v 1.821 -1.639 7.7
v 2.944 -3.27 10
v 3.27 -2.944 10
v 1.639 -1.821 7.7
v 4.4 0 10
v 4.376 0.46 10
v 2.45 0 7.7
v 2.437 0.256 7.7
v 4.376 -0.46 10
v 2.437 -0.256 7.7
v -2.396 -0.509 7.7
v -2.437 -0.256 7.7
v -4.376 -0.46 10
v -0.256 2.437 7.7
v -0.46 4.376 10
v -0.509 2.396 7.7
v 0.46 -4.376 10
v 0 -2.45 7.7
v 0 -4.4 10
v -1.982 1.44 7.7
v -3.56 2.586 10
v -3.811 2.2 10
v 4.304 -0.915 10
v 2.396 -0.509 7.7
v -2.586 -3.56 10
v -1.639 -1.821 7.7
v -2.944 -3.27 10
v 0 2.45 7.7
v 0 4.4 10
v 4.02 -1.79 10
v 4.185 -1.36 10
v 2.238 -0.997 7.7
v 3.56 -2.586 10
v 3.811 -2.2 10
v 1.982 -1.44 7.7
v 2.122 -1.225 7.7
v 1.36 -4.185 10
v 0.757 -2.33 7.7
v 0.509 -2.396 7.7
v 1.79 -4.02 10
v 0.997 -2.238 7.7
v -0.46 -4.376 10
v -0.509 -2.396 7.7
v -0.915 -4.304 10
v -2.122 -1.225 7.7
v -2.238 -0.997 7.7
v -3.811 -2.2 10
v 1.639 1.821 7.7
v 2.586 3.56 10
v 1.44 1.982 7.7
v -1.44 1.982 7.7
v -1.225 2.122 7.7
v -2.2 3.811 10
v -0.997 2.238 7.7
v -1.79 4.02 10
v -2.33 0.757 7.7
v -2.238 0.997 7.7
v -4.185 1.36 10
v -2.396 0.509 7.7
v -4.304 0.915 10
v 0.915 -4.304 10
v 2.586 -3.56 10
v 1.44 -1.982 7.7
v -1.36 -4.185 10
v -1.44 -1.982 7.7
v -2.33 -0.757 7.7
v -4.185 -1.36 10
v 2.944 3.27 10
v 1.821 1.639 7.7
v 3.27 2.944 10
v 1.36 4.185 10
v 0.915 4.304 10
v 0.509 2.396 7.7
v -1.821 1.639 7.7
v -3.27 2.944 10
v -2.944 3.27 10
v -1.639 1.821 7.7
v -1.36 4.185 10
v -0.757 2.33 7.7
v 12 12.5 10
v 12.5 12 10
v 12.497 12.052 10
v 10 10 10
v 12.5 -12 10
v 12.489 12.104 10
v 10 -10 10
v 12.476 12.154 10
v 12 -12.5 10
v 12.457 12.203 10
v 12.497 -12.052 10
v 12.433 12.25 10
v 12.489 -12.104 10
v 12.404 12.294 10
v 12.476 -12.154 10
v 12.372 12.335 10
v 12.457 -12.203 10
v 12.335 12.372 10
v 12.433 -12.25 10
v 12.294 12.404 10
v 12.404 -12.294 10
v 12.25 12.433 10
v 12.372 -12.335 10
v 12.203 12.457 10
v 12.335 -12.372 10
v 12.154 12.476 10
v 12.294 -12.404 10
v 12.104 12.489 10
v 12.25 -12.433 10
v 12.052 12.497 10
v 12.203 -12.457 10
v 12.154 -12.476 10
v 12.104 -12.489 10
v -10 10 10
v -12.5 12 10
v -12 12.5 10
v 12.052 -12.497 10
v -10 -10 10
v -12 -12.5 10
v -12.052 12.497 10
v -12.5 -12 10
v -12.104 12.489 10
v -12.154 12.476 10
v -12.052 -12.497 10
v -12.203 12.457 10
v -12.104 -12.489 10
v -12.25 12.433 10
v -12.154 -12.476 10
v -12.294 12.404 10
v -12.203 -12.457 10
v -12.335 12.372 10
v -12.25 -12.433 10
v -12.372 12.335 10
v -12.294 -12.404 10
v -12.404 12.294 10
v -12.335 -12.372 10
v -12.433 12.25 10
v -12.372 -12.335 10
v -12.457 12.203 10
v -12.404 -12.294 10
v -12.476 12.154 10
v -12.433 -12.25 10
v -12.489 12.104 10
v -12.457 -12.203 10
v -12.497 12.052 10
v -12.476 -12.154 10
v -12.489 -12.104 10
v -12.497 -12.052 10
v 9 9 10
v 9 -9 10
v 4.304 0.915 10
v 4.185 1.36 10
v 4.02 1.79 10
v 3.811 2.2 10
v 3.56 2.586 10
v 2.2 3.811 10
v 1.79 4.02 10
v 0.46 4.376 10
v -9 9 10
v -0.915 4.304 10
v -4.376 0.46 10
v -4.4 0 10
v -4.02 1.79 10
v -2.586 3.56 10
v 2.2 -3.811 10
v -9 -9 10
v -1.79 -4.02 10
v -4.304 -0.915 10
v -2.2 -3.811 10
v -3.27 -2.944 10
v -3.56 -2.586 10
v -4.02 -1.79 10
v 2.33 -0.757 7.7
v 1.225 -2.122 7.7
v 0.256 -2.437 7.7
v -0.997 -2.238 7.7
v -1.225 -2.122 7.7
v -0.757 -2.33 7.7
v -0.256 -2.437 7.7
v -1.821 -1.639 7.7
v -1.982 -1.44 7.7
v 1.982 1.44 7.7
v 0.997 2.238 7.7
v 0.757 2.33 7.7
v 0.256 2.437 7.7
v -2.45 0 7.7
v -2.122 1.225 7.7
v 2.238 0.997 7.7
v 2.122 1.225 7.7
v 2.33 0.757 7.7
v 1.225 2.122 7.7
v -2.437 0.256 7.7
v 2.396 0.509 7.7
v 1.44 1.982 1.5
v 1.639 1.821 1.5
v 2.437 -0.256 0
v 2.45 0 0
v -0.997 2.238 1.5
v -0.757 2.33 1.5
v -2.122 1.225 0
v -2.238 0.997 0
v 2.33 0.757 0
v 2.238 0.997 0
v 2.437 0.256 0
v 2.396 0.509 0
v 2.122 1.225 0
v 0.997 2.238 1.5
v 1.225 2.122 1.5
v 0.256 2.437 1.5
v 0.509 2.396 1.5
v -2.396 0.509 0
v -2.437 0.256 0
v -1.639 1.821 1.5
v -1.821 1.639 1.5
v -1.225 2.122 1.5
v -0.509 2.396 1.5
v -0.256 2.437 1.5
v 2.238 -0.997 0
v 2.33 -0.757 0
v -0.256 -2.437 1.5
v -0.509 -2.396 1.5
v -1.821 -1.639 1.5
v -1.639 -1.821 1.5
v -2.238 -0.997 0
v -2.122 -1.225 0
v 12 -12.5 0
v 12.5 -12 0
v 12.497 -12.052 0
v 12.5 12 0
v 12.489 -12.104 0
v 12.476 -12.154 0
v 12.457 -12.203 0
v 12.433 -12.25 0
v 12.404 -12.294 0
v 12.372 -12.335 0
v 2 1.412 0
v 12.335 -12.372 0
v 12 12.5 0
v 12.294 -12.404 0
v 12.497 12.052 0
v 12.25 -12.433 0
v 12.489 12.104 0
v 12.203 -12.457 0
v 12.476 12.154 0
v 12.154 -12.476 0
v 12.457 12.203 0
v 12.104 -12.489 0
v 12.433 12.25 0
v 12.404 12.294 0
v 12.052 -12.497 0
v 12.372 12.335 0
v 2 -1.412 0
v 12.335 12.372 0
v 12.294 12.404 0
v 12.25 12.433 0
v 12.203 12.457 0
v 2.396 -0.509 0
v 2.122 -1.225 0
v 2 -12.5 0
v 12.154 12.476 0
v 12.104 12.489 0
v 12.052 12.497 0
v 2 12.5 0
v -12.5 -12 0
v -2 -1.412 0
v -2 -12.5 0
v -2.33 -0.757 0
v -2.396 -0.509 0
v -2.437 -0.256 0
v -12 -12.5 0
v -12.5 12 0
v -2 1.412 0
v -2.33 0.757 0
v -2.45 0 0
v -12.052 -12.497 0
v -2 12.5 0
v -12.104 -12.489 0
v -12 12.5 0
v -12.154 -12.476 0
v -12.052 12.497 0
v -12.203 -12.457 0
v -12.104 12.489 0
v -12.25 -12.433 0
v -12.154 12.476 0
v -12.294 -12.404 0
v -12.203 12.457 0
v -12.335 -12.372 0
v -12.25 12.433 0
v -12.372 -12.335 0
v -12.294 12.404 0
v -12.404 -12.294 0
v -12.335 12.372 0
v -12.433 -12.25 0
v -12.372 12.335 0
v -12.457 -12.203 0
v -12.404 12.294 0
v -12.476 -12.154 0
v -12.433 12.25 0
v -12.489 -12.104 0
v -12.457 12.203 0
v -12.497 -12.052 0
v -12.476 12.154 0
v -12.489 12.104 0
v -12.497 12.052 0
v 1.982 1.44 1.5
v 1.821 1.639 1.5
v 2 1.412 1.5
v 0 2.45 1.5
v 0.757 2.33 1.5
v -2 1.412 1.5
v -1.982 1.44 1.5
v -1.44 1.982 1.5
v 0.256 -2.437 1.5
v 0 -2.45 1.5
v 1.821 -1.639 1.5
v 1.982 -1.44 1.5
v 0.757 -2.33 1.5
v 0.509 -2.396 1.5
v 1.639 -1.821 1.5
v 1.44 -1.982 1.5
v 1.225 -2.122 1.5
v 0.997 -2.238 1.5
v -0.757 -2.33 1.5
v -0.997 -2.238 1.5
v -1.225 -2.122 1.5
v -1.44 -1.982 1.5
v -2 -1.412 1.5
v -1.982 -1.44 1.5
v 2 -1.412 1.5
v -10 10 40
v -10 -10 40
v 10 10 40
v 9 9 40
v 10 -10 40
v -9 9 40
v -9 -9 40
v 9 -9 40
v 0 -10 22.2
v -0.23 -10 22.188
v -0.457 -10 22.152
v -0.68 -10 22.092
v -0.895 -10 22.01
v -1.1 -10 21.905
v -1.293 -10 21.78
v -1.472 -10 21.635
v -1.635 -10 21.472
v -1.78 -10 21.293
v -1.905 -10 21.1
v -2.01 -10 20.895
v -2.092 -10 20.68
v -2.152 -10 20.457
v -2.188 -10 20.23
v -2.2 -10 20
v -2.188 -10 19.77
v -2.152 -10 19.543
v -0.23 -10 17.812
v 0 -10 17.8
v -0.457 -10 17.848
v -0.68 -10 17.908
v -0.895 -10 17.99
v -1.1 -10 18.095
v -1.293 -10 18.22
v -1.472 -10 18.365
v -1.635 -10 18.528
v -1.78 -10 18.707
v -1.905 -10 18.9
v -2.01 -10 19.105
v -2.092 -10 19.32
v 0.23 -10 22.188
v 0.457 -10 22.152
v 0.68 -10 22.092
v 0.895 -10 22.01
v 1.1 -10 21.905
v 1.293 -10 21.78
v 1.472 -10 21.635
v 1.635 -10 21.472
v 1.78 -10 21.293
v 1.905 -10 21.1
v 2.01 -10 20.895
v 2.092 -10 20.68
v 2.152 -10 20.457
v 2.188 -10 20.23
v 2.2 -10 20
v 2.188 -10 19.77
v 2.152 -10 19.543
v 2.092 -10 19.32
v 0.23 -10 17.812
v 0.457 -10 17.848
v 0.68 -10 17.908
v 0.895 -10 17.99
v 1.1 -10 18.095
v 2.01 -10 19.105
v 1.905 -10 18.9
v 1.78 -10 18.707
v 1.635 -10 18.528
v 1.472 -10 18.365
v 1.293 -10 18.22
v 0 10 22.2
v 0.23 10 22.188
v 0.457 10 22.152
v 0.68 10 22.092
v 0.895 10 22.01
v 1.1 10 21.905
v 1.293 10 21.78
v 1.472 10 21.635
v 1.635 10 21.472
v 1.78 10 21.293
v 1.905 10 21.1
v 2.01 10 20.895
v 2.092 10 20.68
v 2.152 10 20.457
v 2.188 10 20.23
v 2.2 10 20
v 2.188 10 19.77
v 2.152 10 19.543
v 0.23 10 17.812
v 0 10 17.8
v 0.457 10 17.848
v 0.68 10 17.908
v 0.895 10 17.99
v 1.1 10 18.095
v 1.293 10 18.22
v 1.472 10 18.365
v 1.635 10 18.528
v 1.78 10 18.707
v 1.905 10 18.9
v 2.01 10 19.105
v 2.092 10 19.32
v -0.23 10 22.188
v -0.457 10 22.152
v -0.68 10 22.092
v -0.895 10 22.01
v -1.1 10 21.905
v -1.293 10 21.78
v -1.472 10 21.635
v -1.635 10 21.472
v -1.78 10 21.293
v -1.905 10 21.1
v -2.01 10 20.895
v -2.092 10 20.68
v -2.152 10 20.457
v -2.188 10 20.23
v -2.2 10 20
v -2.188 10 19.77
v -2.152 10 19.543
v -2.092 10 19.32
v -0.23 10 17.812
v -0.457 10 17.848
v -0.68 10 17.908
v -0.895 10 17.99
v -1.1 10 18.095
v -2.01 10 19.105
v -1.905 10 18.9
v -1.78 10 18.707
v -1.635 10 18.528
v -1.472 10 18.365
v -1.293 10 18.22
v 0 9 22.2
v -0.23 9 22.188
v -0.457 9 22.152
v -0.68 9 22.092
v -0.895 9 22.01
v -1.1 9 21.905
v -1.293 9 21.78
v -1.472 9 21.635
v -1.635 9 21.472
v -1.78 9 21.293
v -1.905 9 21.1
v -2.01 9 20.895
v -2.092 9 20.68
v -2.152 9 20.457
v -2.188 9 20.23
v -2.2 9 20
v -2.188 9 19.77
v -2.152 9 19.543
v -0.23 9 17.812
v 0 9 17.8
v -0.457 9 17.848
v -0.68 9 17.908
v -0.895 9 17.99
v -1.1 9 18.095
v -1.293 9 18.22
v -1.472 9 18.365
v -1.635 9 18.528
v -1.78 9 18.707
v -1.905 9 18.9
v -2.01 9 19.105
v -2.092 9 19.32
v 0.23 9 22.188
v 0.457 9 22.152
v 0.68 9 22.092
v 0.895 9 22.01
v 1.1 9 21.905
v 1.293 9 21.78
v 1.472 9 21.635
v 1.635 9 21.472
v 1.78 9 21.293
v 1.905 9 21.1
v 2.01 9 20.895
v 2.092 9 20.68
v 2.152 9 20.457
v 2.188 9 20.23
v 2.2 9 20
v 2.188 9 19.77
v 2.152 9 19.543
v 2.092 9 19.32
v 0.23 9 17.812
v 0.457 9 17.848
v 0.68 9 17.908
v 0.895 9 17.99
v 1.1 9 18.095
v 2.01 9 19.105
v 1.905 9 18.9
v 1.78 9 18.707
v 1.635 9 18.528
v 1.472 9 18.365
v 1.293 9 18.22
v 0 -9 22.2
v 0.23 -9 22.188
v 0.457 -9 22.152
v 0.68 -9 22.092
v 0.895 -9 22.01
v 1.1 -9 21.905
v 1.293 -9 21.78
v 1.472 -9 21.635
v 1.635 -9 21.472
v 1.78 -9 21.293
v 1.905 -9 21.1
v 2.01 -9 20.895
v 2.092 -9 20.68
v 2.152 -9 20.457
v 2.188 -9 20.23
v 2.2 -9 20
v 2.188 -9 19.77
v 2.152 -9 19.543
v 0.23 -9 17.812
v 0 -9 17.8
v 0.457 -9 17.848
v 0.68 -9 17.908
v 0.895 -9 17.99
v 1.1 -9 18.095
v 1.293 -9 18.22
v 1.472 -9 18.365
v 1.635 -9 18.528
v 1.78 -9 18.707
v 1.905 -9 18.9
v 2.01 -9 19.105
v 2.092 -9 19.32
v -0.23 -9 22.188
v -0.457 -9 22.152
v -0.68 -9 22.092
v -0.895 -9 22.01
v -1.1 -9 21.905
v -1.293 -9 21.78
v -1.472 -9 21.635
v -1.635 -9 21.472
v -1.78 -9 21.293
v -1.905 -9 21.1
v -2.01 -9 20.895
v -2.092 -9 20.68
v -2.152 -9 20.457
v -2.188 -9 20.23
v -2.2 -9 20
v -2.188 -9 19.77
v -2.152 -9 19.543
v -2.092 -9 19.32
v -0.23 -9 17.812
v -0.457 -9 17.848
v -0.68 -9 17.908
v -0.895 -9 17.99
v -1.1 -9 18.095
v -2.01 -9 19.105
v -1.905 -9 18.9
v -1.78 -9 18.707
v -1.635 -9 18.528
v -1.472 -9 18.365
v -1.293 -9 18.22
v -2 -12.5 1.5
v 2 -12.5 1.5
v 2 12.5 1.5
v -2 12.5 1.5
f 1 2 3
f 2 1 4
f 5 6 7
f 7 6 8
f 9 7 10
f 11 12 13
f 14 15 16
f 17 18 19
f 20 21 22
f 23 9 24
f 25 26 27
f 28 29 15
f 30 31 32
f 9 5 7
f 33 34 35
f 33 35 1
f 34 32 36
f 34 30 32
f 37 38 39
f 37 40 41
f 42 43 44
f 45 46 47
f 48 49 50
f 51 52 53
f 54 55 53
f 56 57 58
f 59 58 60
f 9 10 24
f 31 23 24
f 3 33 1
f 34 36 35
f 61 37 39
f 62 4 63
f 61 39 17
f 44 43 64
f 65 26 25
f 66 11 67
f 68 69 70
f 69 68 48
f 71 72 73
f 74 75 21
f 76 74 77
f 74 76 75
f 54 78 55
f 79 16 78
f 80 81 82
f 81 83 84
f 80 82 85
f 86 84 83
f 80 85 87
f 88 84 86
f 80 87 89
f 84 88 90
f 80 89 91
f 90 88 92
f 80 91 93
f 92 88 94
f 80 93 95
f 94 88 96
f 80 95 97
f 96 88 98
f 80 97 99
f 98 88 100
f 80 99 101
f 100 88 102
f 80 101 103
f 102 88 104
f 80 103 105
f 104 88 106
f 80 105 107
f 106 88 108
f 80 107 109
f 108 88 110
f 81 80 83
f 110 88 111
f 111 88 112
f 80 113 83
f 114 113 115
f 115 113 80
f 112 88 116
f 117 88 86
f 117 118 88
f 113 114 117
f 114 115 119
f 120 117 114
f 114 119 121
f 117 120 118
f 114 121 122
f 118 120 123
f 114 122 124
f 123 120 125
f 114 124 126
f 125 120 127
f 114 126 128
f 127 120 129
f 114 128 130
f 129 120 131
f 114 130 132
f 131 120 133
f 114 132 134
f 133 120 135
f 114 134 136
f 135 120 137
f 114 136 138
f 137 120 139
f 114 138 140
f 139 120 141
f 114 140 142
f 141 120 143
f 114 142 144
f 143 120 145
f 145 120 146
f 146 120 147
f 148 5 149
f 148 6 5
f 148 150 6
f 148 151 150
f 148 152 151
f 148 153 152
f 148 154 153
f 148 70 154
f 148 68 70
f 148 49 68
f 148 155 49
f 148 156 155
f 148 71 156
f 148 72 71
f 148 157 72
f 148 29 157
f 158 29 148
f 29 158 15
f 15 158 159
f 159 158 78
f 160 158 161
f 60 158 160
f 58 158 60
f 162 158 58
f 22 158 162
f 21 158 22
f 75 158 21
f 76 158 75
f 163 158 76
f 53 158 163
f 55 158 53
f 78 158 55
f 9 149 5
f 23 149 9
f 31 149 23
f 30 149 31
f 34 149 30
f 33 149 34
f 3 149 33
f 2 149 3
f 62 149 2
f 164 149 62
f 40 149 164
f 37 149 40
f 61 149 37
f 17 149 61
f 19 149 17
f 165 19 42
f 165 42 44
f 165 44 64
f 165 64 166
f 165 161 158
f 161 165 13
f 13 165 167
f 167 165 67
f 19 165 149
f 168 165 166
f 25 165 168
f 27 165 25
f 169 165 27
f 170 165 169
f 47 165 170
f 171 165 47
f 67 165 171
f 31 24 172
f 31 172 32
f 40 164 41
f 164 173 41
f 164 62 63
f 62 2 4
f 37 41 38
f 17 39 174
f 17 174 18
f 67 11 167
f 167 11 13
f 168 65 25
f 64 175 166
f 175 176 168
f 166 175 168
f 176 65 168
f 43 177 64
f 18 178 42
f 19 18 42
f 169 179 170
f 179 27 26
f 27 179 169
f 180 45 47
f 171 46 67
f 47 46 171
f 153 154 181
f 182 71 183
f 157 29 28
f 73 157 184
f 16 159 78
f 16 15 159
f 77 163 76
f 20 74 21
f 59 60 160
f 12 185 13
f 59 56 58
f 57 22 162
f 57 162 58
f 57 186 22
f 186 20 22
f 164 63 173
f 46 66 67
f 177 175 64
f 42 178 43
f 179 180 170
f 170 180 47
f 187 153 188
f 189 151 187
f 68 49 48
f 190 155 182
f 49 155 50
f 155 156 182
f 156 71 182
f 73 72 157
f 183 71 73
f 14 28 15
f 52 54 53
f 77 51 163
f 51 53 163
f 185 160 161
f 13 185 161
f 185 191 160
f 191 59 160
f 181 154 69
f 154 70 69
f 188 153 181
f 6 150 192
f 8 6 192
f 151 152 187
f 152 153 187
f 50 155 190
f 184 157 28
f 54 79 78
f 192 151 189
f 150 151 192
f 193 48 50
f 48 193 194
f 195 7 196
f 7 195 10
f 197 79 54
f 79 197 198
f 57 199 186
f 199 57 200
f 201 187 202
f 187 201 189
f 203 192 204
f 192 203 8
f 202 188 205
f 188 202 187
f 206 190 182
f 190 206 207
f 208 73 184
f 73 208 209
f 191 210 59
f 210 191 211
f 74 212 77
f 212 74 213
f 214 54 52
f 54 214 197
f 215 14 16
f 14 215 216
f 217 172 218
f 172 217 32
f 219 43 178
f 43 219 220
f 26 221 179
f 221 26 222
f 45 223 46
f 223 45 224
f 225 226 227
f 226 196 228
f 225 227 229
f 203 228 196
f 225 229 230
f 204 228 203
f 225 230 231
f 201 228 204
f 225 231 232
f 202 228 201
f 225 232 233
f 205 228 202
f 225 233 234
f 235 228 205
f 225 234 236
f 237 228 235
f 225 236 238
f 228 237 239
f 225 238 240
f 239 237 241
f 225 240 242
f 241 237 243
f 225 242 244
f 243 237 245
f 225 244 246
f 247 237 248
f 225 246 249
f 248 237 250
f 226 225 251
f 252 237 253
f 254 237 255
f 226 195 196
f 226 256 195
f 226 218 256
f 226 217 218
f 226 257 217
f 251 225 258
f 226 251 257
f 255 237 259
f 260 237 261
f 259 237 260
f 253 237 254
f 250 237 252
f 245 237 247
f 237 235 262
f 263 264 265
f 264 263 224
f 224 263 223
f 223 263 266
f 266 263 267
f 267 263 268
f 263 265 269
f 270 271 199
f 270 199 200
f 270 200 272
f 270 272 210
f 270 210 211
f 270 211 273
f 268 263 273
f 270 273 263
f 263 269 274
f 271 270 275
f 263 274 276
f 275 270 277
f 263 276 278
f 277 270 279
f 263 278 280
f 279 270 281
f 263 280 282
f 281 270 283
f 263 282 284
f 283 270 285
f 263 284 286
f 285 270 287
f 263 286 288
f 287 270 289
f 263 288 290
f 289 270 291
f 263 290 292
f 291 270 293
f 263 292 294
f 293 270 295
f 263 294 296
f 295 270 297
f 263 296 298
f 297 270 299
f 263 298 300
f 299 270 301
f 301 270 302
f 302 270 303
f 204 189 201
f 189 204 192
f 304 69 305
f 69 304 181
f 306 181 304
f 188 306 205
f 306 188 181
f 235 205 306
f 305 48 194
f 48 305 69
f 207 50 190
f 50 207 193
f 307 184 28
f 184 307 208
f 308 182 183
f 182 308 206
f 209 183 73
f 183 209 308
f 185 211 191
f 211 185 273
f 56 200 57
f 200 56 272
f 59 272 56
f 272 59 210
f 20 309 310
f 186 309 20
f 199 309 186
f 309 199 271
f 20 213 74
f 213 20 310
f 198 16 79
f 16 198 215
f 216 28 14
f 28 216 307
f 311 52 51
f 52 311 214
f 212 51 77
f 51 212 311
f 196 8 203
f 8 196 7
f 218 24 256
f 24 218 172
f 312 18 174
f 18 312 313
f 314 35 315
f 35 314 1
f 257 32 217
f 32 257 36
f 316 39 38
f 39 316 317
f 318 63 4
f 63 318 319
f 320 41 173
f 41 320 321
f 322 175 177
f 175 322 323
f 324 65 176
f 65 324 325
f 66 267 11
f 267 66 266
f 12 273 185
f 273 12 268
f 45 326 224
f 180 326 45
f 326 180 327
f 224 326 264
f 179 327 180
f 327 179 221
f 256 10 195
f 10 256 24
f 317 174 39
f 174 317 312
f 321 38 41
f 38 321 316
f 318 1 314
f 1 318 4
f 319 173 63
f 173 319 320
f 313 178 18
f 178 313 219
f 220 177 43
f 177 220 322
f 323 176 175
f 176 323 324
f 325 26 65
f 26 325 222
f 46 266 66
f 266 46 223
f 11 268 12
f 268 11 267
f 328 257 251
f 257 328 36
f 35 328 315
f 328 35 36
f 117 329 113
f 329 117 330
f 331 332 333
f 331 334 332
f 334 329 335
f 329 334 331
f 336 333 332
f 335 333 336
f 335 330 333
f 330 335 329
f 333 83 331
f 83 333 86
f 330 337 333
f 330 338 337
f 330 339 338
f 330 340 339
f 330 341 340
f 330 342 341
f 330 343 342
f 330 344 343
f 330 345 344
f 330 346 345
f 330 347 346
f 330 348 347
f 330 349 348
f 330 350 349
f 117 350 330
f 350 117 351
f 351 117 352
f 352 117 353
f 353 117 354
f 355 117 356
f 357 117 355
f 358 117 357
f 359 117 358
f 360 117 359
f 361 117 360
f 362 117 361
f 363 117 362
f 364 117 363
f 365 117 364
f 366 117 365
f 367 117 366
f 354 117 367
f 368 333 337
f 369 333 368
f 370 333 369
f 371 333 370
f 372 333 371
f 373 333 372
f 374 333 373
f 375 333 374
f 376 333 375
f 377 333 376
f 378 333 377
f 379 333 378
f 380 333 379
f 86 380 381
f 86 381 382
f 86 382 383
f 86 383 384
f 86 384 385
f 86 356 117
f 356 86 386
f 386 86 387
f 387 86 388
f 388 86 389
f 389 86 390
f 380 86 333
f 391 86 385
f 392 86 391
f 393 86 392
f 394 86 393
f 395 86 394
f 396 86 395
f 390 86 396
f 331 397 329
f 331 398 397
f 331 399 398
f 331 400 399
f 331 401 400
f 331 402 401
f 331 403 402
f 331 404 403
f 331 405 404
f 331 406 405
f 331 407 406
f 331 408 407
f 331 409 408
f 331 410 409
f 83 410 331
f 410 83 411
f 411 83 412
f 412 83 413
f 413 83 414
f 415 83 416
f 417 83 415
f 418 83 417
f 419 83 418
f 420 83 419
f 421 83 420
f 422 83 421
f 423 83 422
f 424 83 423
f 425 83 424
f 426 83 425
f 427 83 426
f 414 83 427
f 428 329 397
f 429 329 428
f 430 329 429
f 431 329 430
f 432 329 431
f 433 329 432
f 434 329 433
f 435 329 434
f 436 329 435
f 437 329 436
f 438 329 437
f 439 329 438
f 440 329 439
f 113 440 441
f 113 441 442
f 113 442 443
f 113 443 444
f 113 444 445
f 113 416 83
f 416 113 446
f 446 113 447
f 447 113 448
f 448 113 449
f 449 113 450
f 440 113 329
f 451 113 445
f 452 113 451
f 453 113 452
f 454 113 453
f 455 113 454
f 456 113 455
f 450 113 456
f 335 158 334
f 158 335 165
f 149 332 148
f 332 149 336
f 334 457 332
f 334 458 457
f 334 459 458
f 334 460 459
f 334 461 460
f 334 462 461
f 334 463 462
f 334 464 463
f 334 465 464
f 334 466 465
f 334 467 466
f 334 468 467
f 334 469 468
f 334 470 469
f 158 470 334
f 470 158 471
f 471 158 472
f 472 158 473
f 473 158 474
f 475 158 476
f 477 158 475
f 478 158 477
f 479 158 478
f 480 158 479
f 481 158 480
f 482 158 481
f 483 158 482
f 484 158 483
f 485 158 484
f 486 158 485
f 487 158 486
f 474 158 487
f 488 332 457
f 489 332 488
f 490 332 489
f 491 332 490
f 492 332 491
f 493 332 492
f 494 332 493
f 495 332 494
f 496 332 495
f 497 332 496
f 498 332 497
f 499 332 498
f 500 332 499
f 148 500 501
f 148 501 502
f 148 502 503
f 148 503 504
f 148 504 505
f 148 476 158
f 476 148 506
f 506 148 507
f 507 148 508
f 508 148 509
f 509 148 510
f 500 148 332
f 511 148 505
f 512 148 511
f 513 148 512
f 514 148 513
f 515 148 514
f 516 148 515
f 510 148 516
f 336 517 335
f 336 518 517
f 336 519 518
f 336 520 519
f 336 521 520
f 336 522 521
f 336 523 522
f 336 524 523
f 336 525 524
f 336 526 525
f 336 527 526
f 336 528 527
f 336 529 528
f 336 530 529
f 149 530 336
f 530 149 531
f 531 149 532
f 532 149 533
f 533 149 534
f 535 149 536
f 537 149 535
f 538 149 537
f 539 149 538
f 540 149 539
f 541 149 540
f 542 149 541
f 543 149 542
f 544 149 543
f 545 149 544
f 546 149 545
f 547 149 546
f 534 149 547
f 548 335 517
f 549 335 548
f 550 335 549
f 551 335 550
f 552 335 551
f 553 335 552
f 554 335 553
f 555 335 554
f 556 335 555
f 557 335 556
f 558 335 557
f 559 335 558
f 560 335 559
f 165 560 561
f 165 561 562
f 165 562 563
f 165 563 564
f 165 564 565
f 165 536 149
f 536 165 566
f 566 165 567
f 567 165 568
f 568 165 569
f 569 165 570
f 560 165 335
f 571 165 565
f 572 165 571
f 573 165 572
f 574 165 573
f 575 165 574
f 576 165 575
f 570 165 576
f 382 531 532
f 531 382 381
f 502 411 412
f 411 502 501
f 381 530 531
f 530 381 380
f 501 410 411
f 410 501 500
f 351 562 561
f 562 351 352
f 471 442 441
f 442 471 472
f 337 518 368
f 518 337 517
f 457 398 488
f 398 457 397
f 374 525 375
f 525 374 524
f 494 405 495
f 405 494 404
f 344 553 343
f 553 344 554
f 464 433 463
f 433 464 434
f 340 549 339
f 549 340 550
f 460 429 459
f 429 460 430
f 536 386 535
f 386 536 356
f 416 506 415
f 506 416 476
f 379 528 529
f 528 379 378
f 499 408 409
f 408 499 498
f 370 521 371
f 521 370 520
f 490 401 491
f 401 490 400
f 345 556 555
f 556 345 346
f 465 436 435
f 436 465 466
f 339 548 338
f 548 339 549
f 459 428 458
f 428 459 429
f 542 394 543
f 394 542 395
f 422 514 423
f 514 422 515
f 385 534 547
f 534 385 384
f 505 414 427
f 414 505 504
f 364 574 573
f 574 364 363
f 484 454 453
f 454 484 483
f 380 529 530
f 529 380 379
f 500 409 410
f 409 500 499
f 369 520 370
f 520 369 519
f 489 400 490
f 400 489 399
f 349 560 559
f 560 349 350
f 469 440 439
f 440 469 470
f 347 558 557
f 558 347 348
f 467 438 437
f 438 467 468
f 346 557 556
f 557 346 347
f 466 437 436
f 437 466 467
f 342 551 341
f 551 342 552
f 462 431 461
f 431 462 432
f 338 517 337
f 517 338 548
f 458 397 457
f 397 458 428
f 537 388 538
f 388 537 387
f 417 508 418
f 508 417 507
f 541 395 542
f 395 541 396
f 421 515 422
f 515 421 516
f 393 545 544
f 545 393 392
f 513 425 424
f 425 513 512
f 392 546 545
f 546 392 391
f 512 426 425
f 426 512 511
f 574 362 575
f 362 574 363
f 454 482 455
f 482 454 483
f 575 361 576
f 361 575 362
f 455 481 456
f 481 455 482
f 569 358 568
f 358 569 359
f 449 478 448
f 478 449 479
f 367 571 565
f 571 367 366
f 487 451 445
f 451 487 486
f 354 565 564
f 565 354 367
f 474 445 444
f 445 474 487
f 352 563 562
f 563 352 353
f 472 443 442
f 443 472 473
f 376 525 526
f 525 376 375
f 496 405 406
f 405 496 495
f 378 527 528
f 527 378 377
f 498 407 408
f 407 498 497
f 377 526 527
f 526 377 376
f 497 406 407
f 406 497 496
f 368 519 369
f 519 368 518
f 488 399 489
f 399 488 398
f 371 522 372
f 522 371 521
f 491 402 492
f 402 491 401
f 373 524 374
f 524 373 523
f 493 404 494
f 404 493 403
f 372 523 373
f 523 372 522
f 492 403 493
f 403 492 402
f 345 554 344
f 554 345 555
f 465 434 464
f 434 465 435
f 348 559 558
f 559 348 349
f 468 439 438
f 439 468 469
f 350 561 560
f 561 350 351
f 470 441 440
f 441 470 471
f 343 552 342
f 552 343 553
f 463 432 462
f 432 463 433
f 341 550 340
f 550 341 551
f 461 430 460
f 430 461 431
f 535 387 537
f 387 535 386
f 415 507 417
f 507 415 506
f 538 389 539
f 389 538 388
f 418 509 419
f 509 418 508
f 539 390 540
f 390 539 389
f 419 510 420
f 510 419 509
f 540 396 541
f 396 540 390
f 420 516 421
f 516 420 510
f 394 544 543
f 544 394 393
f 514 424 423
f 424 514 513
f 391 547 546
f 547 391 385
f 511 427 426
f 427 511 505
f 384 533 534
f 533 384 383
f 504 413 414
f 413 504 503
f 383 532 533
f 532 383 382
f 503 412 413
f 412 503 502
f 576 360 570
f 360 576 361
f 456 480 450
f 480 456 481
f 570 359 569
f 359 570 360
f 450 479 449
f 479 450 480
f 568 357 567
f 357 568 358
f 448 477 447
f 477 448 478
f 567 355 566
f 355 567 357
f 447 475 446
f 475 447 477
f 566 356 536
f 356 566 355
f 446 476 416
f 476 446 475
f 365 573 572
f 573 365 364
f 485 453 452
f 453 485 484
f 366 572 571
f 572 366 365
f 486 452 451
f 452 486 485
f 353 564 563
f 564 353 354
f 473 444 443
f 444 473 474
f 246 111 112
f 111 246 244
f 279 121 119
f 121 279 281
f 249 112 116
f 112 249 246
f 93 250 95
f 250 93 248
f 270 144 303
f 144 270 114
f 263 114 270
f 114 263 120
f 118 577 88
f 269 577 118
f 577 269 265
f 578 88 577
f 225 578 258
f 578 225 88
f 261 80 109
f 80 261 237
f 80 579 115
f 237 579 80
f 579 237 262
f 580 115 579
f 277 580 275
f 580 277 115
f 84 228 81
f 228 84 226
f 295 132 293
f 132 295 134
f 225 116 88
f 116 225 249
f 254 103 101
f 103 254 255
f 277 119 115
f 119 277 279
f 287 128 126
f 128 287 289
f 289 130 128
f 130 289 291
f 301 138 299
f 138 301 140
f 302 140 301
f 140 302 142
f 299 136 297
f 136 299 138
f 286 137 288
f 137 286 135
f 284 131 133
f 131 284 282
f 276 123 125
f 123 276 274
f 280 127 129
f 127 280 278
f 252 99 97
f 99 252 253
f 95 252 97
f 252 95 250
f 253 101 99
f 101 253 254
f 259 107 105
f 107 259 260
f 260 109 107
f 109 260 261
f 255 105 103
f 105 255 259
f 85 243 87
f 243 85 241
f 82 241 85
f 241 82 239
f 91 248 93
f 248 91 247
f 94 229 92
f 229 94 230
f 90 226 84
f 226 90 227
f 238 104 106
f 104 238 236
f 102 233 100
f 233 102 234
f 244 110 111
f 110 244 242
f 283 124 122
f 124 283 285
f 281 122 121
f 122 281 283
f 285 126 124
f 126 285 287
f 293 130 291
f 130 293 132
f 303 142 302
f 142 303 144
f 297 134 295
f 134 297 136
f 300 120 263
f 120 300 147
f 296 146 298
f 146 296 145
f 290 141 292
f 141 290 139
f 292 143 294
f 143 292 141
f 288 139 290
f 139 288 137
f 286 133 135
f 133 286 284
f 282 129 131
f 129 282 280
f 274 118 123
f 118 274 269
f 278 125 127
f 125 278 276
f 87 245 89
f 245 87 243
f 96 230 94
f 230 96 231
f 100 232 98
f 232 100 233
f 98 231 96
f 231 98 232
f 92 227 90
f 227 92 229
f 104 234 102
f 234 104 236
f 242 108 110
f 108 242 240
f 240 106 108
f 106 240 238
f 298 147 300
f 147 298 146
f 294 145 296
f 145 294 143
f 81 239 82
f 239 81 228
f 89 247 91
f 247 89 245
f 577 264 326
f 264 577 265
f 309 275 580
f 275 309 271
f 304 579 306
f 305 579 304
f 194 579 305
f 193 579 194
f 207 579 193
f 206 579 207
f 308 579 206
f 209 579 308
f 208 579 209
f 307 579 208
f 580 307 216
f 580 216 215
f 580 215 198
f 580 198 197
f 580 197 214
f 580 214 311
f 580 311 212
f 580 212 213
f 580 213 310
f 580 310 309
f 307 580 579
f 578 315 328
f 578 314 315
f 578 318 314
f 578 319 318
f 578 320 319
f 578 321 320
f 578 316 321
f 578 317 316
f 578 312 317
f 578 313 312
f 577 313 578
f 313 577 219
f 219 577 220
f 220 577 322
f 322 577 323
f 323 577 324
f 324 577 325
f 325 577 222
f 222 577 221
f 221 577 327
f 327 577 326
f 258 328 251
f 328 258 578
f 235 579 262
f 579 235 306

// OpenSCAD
// Jacob McKenna
// UAF CS 600 Robotics
// Mount for DriveTrain
$fn = 60;

module Fillet(){
    offset(-1.4) offset(1.4) children();
}

module Smooth(){
    offset(.5) offset(-.5) children();
}

module AluminumExtrusionMount(){
    mountWidth = 25;
    baseHeight = 10;
    
    
    
    module Column(){
        extrusionWidth = 20.1;
        columnHeight = 30;
        linear_extrude(columnHeight) difference(){
            Smooth() square([mountWidth, mountWidth], center=true);
            Smooth() square([extrusionWidth, extrusionWidth], center=true);
        }
    }
    
    module ExtrusionSlot(){
        width = 20;
        height = 40;
        perimeterWidth = width - 2;
        translate([0,0,height/2]) difference(){
            cube([width,width,height], center=true);
            cube([perimeterWidth,perimeterWidth,height], center=true);
            rotate([90,0,0]) cylinder(r=2.2, h= 30, center=true);
        }
    }
   
    // Base Cutouts
    module DriveTrainCutout(){
        driveTrainWidth = 4;
        cube([driveTrainWidth, 100, 3], center=true);
    }
    
    module ScrewCutout(){
        screwRadius = 2.45;
        screwHeadRadius = 4.4;
        screwHeadHeight = 2.3;
        translate([0,0, baseHeight - screwHeadHeight]) cylinder(r1=screwRadius, r2=screwHeadRadius, h=screwHeadHeight);
        translate([0,0,0]) cylinder(r=screwRadius, h =baseHeight);
    }
    
    
    
    module Base(){
        difference(){
            union(){
                linear_extrude(baseHeight) Smooth() square([mountWidth, mountWidth], center=true);
                ExtrusionSlot();
            }  
            ScrewCutout();
            DriveTrainCutout();
        }
    }
    
    Base();
    //Column();
}


AluminumExtrusionMount();
